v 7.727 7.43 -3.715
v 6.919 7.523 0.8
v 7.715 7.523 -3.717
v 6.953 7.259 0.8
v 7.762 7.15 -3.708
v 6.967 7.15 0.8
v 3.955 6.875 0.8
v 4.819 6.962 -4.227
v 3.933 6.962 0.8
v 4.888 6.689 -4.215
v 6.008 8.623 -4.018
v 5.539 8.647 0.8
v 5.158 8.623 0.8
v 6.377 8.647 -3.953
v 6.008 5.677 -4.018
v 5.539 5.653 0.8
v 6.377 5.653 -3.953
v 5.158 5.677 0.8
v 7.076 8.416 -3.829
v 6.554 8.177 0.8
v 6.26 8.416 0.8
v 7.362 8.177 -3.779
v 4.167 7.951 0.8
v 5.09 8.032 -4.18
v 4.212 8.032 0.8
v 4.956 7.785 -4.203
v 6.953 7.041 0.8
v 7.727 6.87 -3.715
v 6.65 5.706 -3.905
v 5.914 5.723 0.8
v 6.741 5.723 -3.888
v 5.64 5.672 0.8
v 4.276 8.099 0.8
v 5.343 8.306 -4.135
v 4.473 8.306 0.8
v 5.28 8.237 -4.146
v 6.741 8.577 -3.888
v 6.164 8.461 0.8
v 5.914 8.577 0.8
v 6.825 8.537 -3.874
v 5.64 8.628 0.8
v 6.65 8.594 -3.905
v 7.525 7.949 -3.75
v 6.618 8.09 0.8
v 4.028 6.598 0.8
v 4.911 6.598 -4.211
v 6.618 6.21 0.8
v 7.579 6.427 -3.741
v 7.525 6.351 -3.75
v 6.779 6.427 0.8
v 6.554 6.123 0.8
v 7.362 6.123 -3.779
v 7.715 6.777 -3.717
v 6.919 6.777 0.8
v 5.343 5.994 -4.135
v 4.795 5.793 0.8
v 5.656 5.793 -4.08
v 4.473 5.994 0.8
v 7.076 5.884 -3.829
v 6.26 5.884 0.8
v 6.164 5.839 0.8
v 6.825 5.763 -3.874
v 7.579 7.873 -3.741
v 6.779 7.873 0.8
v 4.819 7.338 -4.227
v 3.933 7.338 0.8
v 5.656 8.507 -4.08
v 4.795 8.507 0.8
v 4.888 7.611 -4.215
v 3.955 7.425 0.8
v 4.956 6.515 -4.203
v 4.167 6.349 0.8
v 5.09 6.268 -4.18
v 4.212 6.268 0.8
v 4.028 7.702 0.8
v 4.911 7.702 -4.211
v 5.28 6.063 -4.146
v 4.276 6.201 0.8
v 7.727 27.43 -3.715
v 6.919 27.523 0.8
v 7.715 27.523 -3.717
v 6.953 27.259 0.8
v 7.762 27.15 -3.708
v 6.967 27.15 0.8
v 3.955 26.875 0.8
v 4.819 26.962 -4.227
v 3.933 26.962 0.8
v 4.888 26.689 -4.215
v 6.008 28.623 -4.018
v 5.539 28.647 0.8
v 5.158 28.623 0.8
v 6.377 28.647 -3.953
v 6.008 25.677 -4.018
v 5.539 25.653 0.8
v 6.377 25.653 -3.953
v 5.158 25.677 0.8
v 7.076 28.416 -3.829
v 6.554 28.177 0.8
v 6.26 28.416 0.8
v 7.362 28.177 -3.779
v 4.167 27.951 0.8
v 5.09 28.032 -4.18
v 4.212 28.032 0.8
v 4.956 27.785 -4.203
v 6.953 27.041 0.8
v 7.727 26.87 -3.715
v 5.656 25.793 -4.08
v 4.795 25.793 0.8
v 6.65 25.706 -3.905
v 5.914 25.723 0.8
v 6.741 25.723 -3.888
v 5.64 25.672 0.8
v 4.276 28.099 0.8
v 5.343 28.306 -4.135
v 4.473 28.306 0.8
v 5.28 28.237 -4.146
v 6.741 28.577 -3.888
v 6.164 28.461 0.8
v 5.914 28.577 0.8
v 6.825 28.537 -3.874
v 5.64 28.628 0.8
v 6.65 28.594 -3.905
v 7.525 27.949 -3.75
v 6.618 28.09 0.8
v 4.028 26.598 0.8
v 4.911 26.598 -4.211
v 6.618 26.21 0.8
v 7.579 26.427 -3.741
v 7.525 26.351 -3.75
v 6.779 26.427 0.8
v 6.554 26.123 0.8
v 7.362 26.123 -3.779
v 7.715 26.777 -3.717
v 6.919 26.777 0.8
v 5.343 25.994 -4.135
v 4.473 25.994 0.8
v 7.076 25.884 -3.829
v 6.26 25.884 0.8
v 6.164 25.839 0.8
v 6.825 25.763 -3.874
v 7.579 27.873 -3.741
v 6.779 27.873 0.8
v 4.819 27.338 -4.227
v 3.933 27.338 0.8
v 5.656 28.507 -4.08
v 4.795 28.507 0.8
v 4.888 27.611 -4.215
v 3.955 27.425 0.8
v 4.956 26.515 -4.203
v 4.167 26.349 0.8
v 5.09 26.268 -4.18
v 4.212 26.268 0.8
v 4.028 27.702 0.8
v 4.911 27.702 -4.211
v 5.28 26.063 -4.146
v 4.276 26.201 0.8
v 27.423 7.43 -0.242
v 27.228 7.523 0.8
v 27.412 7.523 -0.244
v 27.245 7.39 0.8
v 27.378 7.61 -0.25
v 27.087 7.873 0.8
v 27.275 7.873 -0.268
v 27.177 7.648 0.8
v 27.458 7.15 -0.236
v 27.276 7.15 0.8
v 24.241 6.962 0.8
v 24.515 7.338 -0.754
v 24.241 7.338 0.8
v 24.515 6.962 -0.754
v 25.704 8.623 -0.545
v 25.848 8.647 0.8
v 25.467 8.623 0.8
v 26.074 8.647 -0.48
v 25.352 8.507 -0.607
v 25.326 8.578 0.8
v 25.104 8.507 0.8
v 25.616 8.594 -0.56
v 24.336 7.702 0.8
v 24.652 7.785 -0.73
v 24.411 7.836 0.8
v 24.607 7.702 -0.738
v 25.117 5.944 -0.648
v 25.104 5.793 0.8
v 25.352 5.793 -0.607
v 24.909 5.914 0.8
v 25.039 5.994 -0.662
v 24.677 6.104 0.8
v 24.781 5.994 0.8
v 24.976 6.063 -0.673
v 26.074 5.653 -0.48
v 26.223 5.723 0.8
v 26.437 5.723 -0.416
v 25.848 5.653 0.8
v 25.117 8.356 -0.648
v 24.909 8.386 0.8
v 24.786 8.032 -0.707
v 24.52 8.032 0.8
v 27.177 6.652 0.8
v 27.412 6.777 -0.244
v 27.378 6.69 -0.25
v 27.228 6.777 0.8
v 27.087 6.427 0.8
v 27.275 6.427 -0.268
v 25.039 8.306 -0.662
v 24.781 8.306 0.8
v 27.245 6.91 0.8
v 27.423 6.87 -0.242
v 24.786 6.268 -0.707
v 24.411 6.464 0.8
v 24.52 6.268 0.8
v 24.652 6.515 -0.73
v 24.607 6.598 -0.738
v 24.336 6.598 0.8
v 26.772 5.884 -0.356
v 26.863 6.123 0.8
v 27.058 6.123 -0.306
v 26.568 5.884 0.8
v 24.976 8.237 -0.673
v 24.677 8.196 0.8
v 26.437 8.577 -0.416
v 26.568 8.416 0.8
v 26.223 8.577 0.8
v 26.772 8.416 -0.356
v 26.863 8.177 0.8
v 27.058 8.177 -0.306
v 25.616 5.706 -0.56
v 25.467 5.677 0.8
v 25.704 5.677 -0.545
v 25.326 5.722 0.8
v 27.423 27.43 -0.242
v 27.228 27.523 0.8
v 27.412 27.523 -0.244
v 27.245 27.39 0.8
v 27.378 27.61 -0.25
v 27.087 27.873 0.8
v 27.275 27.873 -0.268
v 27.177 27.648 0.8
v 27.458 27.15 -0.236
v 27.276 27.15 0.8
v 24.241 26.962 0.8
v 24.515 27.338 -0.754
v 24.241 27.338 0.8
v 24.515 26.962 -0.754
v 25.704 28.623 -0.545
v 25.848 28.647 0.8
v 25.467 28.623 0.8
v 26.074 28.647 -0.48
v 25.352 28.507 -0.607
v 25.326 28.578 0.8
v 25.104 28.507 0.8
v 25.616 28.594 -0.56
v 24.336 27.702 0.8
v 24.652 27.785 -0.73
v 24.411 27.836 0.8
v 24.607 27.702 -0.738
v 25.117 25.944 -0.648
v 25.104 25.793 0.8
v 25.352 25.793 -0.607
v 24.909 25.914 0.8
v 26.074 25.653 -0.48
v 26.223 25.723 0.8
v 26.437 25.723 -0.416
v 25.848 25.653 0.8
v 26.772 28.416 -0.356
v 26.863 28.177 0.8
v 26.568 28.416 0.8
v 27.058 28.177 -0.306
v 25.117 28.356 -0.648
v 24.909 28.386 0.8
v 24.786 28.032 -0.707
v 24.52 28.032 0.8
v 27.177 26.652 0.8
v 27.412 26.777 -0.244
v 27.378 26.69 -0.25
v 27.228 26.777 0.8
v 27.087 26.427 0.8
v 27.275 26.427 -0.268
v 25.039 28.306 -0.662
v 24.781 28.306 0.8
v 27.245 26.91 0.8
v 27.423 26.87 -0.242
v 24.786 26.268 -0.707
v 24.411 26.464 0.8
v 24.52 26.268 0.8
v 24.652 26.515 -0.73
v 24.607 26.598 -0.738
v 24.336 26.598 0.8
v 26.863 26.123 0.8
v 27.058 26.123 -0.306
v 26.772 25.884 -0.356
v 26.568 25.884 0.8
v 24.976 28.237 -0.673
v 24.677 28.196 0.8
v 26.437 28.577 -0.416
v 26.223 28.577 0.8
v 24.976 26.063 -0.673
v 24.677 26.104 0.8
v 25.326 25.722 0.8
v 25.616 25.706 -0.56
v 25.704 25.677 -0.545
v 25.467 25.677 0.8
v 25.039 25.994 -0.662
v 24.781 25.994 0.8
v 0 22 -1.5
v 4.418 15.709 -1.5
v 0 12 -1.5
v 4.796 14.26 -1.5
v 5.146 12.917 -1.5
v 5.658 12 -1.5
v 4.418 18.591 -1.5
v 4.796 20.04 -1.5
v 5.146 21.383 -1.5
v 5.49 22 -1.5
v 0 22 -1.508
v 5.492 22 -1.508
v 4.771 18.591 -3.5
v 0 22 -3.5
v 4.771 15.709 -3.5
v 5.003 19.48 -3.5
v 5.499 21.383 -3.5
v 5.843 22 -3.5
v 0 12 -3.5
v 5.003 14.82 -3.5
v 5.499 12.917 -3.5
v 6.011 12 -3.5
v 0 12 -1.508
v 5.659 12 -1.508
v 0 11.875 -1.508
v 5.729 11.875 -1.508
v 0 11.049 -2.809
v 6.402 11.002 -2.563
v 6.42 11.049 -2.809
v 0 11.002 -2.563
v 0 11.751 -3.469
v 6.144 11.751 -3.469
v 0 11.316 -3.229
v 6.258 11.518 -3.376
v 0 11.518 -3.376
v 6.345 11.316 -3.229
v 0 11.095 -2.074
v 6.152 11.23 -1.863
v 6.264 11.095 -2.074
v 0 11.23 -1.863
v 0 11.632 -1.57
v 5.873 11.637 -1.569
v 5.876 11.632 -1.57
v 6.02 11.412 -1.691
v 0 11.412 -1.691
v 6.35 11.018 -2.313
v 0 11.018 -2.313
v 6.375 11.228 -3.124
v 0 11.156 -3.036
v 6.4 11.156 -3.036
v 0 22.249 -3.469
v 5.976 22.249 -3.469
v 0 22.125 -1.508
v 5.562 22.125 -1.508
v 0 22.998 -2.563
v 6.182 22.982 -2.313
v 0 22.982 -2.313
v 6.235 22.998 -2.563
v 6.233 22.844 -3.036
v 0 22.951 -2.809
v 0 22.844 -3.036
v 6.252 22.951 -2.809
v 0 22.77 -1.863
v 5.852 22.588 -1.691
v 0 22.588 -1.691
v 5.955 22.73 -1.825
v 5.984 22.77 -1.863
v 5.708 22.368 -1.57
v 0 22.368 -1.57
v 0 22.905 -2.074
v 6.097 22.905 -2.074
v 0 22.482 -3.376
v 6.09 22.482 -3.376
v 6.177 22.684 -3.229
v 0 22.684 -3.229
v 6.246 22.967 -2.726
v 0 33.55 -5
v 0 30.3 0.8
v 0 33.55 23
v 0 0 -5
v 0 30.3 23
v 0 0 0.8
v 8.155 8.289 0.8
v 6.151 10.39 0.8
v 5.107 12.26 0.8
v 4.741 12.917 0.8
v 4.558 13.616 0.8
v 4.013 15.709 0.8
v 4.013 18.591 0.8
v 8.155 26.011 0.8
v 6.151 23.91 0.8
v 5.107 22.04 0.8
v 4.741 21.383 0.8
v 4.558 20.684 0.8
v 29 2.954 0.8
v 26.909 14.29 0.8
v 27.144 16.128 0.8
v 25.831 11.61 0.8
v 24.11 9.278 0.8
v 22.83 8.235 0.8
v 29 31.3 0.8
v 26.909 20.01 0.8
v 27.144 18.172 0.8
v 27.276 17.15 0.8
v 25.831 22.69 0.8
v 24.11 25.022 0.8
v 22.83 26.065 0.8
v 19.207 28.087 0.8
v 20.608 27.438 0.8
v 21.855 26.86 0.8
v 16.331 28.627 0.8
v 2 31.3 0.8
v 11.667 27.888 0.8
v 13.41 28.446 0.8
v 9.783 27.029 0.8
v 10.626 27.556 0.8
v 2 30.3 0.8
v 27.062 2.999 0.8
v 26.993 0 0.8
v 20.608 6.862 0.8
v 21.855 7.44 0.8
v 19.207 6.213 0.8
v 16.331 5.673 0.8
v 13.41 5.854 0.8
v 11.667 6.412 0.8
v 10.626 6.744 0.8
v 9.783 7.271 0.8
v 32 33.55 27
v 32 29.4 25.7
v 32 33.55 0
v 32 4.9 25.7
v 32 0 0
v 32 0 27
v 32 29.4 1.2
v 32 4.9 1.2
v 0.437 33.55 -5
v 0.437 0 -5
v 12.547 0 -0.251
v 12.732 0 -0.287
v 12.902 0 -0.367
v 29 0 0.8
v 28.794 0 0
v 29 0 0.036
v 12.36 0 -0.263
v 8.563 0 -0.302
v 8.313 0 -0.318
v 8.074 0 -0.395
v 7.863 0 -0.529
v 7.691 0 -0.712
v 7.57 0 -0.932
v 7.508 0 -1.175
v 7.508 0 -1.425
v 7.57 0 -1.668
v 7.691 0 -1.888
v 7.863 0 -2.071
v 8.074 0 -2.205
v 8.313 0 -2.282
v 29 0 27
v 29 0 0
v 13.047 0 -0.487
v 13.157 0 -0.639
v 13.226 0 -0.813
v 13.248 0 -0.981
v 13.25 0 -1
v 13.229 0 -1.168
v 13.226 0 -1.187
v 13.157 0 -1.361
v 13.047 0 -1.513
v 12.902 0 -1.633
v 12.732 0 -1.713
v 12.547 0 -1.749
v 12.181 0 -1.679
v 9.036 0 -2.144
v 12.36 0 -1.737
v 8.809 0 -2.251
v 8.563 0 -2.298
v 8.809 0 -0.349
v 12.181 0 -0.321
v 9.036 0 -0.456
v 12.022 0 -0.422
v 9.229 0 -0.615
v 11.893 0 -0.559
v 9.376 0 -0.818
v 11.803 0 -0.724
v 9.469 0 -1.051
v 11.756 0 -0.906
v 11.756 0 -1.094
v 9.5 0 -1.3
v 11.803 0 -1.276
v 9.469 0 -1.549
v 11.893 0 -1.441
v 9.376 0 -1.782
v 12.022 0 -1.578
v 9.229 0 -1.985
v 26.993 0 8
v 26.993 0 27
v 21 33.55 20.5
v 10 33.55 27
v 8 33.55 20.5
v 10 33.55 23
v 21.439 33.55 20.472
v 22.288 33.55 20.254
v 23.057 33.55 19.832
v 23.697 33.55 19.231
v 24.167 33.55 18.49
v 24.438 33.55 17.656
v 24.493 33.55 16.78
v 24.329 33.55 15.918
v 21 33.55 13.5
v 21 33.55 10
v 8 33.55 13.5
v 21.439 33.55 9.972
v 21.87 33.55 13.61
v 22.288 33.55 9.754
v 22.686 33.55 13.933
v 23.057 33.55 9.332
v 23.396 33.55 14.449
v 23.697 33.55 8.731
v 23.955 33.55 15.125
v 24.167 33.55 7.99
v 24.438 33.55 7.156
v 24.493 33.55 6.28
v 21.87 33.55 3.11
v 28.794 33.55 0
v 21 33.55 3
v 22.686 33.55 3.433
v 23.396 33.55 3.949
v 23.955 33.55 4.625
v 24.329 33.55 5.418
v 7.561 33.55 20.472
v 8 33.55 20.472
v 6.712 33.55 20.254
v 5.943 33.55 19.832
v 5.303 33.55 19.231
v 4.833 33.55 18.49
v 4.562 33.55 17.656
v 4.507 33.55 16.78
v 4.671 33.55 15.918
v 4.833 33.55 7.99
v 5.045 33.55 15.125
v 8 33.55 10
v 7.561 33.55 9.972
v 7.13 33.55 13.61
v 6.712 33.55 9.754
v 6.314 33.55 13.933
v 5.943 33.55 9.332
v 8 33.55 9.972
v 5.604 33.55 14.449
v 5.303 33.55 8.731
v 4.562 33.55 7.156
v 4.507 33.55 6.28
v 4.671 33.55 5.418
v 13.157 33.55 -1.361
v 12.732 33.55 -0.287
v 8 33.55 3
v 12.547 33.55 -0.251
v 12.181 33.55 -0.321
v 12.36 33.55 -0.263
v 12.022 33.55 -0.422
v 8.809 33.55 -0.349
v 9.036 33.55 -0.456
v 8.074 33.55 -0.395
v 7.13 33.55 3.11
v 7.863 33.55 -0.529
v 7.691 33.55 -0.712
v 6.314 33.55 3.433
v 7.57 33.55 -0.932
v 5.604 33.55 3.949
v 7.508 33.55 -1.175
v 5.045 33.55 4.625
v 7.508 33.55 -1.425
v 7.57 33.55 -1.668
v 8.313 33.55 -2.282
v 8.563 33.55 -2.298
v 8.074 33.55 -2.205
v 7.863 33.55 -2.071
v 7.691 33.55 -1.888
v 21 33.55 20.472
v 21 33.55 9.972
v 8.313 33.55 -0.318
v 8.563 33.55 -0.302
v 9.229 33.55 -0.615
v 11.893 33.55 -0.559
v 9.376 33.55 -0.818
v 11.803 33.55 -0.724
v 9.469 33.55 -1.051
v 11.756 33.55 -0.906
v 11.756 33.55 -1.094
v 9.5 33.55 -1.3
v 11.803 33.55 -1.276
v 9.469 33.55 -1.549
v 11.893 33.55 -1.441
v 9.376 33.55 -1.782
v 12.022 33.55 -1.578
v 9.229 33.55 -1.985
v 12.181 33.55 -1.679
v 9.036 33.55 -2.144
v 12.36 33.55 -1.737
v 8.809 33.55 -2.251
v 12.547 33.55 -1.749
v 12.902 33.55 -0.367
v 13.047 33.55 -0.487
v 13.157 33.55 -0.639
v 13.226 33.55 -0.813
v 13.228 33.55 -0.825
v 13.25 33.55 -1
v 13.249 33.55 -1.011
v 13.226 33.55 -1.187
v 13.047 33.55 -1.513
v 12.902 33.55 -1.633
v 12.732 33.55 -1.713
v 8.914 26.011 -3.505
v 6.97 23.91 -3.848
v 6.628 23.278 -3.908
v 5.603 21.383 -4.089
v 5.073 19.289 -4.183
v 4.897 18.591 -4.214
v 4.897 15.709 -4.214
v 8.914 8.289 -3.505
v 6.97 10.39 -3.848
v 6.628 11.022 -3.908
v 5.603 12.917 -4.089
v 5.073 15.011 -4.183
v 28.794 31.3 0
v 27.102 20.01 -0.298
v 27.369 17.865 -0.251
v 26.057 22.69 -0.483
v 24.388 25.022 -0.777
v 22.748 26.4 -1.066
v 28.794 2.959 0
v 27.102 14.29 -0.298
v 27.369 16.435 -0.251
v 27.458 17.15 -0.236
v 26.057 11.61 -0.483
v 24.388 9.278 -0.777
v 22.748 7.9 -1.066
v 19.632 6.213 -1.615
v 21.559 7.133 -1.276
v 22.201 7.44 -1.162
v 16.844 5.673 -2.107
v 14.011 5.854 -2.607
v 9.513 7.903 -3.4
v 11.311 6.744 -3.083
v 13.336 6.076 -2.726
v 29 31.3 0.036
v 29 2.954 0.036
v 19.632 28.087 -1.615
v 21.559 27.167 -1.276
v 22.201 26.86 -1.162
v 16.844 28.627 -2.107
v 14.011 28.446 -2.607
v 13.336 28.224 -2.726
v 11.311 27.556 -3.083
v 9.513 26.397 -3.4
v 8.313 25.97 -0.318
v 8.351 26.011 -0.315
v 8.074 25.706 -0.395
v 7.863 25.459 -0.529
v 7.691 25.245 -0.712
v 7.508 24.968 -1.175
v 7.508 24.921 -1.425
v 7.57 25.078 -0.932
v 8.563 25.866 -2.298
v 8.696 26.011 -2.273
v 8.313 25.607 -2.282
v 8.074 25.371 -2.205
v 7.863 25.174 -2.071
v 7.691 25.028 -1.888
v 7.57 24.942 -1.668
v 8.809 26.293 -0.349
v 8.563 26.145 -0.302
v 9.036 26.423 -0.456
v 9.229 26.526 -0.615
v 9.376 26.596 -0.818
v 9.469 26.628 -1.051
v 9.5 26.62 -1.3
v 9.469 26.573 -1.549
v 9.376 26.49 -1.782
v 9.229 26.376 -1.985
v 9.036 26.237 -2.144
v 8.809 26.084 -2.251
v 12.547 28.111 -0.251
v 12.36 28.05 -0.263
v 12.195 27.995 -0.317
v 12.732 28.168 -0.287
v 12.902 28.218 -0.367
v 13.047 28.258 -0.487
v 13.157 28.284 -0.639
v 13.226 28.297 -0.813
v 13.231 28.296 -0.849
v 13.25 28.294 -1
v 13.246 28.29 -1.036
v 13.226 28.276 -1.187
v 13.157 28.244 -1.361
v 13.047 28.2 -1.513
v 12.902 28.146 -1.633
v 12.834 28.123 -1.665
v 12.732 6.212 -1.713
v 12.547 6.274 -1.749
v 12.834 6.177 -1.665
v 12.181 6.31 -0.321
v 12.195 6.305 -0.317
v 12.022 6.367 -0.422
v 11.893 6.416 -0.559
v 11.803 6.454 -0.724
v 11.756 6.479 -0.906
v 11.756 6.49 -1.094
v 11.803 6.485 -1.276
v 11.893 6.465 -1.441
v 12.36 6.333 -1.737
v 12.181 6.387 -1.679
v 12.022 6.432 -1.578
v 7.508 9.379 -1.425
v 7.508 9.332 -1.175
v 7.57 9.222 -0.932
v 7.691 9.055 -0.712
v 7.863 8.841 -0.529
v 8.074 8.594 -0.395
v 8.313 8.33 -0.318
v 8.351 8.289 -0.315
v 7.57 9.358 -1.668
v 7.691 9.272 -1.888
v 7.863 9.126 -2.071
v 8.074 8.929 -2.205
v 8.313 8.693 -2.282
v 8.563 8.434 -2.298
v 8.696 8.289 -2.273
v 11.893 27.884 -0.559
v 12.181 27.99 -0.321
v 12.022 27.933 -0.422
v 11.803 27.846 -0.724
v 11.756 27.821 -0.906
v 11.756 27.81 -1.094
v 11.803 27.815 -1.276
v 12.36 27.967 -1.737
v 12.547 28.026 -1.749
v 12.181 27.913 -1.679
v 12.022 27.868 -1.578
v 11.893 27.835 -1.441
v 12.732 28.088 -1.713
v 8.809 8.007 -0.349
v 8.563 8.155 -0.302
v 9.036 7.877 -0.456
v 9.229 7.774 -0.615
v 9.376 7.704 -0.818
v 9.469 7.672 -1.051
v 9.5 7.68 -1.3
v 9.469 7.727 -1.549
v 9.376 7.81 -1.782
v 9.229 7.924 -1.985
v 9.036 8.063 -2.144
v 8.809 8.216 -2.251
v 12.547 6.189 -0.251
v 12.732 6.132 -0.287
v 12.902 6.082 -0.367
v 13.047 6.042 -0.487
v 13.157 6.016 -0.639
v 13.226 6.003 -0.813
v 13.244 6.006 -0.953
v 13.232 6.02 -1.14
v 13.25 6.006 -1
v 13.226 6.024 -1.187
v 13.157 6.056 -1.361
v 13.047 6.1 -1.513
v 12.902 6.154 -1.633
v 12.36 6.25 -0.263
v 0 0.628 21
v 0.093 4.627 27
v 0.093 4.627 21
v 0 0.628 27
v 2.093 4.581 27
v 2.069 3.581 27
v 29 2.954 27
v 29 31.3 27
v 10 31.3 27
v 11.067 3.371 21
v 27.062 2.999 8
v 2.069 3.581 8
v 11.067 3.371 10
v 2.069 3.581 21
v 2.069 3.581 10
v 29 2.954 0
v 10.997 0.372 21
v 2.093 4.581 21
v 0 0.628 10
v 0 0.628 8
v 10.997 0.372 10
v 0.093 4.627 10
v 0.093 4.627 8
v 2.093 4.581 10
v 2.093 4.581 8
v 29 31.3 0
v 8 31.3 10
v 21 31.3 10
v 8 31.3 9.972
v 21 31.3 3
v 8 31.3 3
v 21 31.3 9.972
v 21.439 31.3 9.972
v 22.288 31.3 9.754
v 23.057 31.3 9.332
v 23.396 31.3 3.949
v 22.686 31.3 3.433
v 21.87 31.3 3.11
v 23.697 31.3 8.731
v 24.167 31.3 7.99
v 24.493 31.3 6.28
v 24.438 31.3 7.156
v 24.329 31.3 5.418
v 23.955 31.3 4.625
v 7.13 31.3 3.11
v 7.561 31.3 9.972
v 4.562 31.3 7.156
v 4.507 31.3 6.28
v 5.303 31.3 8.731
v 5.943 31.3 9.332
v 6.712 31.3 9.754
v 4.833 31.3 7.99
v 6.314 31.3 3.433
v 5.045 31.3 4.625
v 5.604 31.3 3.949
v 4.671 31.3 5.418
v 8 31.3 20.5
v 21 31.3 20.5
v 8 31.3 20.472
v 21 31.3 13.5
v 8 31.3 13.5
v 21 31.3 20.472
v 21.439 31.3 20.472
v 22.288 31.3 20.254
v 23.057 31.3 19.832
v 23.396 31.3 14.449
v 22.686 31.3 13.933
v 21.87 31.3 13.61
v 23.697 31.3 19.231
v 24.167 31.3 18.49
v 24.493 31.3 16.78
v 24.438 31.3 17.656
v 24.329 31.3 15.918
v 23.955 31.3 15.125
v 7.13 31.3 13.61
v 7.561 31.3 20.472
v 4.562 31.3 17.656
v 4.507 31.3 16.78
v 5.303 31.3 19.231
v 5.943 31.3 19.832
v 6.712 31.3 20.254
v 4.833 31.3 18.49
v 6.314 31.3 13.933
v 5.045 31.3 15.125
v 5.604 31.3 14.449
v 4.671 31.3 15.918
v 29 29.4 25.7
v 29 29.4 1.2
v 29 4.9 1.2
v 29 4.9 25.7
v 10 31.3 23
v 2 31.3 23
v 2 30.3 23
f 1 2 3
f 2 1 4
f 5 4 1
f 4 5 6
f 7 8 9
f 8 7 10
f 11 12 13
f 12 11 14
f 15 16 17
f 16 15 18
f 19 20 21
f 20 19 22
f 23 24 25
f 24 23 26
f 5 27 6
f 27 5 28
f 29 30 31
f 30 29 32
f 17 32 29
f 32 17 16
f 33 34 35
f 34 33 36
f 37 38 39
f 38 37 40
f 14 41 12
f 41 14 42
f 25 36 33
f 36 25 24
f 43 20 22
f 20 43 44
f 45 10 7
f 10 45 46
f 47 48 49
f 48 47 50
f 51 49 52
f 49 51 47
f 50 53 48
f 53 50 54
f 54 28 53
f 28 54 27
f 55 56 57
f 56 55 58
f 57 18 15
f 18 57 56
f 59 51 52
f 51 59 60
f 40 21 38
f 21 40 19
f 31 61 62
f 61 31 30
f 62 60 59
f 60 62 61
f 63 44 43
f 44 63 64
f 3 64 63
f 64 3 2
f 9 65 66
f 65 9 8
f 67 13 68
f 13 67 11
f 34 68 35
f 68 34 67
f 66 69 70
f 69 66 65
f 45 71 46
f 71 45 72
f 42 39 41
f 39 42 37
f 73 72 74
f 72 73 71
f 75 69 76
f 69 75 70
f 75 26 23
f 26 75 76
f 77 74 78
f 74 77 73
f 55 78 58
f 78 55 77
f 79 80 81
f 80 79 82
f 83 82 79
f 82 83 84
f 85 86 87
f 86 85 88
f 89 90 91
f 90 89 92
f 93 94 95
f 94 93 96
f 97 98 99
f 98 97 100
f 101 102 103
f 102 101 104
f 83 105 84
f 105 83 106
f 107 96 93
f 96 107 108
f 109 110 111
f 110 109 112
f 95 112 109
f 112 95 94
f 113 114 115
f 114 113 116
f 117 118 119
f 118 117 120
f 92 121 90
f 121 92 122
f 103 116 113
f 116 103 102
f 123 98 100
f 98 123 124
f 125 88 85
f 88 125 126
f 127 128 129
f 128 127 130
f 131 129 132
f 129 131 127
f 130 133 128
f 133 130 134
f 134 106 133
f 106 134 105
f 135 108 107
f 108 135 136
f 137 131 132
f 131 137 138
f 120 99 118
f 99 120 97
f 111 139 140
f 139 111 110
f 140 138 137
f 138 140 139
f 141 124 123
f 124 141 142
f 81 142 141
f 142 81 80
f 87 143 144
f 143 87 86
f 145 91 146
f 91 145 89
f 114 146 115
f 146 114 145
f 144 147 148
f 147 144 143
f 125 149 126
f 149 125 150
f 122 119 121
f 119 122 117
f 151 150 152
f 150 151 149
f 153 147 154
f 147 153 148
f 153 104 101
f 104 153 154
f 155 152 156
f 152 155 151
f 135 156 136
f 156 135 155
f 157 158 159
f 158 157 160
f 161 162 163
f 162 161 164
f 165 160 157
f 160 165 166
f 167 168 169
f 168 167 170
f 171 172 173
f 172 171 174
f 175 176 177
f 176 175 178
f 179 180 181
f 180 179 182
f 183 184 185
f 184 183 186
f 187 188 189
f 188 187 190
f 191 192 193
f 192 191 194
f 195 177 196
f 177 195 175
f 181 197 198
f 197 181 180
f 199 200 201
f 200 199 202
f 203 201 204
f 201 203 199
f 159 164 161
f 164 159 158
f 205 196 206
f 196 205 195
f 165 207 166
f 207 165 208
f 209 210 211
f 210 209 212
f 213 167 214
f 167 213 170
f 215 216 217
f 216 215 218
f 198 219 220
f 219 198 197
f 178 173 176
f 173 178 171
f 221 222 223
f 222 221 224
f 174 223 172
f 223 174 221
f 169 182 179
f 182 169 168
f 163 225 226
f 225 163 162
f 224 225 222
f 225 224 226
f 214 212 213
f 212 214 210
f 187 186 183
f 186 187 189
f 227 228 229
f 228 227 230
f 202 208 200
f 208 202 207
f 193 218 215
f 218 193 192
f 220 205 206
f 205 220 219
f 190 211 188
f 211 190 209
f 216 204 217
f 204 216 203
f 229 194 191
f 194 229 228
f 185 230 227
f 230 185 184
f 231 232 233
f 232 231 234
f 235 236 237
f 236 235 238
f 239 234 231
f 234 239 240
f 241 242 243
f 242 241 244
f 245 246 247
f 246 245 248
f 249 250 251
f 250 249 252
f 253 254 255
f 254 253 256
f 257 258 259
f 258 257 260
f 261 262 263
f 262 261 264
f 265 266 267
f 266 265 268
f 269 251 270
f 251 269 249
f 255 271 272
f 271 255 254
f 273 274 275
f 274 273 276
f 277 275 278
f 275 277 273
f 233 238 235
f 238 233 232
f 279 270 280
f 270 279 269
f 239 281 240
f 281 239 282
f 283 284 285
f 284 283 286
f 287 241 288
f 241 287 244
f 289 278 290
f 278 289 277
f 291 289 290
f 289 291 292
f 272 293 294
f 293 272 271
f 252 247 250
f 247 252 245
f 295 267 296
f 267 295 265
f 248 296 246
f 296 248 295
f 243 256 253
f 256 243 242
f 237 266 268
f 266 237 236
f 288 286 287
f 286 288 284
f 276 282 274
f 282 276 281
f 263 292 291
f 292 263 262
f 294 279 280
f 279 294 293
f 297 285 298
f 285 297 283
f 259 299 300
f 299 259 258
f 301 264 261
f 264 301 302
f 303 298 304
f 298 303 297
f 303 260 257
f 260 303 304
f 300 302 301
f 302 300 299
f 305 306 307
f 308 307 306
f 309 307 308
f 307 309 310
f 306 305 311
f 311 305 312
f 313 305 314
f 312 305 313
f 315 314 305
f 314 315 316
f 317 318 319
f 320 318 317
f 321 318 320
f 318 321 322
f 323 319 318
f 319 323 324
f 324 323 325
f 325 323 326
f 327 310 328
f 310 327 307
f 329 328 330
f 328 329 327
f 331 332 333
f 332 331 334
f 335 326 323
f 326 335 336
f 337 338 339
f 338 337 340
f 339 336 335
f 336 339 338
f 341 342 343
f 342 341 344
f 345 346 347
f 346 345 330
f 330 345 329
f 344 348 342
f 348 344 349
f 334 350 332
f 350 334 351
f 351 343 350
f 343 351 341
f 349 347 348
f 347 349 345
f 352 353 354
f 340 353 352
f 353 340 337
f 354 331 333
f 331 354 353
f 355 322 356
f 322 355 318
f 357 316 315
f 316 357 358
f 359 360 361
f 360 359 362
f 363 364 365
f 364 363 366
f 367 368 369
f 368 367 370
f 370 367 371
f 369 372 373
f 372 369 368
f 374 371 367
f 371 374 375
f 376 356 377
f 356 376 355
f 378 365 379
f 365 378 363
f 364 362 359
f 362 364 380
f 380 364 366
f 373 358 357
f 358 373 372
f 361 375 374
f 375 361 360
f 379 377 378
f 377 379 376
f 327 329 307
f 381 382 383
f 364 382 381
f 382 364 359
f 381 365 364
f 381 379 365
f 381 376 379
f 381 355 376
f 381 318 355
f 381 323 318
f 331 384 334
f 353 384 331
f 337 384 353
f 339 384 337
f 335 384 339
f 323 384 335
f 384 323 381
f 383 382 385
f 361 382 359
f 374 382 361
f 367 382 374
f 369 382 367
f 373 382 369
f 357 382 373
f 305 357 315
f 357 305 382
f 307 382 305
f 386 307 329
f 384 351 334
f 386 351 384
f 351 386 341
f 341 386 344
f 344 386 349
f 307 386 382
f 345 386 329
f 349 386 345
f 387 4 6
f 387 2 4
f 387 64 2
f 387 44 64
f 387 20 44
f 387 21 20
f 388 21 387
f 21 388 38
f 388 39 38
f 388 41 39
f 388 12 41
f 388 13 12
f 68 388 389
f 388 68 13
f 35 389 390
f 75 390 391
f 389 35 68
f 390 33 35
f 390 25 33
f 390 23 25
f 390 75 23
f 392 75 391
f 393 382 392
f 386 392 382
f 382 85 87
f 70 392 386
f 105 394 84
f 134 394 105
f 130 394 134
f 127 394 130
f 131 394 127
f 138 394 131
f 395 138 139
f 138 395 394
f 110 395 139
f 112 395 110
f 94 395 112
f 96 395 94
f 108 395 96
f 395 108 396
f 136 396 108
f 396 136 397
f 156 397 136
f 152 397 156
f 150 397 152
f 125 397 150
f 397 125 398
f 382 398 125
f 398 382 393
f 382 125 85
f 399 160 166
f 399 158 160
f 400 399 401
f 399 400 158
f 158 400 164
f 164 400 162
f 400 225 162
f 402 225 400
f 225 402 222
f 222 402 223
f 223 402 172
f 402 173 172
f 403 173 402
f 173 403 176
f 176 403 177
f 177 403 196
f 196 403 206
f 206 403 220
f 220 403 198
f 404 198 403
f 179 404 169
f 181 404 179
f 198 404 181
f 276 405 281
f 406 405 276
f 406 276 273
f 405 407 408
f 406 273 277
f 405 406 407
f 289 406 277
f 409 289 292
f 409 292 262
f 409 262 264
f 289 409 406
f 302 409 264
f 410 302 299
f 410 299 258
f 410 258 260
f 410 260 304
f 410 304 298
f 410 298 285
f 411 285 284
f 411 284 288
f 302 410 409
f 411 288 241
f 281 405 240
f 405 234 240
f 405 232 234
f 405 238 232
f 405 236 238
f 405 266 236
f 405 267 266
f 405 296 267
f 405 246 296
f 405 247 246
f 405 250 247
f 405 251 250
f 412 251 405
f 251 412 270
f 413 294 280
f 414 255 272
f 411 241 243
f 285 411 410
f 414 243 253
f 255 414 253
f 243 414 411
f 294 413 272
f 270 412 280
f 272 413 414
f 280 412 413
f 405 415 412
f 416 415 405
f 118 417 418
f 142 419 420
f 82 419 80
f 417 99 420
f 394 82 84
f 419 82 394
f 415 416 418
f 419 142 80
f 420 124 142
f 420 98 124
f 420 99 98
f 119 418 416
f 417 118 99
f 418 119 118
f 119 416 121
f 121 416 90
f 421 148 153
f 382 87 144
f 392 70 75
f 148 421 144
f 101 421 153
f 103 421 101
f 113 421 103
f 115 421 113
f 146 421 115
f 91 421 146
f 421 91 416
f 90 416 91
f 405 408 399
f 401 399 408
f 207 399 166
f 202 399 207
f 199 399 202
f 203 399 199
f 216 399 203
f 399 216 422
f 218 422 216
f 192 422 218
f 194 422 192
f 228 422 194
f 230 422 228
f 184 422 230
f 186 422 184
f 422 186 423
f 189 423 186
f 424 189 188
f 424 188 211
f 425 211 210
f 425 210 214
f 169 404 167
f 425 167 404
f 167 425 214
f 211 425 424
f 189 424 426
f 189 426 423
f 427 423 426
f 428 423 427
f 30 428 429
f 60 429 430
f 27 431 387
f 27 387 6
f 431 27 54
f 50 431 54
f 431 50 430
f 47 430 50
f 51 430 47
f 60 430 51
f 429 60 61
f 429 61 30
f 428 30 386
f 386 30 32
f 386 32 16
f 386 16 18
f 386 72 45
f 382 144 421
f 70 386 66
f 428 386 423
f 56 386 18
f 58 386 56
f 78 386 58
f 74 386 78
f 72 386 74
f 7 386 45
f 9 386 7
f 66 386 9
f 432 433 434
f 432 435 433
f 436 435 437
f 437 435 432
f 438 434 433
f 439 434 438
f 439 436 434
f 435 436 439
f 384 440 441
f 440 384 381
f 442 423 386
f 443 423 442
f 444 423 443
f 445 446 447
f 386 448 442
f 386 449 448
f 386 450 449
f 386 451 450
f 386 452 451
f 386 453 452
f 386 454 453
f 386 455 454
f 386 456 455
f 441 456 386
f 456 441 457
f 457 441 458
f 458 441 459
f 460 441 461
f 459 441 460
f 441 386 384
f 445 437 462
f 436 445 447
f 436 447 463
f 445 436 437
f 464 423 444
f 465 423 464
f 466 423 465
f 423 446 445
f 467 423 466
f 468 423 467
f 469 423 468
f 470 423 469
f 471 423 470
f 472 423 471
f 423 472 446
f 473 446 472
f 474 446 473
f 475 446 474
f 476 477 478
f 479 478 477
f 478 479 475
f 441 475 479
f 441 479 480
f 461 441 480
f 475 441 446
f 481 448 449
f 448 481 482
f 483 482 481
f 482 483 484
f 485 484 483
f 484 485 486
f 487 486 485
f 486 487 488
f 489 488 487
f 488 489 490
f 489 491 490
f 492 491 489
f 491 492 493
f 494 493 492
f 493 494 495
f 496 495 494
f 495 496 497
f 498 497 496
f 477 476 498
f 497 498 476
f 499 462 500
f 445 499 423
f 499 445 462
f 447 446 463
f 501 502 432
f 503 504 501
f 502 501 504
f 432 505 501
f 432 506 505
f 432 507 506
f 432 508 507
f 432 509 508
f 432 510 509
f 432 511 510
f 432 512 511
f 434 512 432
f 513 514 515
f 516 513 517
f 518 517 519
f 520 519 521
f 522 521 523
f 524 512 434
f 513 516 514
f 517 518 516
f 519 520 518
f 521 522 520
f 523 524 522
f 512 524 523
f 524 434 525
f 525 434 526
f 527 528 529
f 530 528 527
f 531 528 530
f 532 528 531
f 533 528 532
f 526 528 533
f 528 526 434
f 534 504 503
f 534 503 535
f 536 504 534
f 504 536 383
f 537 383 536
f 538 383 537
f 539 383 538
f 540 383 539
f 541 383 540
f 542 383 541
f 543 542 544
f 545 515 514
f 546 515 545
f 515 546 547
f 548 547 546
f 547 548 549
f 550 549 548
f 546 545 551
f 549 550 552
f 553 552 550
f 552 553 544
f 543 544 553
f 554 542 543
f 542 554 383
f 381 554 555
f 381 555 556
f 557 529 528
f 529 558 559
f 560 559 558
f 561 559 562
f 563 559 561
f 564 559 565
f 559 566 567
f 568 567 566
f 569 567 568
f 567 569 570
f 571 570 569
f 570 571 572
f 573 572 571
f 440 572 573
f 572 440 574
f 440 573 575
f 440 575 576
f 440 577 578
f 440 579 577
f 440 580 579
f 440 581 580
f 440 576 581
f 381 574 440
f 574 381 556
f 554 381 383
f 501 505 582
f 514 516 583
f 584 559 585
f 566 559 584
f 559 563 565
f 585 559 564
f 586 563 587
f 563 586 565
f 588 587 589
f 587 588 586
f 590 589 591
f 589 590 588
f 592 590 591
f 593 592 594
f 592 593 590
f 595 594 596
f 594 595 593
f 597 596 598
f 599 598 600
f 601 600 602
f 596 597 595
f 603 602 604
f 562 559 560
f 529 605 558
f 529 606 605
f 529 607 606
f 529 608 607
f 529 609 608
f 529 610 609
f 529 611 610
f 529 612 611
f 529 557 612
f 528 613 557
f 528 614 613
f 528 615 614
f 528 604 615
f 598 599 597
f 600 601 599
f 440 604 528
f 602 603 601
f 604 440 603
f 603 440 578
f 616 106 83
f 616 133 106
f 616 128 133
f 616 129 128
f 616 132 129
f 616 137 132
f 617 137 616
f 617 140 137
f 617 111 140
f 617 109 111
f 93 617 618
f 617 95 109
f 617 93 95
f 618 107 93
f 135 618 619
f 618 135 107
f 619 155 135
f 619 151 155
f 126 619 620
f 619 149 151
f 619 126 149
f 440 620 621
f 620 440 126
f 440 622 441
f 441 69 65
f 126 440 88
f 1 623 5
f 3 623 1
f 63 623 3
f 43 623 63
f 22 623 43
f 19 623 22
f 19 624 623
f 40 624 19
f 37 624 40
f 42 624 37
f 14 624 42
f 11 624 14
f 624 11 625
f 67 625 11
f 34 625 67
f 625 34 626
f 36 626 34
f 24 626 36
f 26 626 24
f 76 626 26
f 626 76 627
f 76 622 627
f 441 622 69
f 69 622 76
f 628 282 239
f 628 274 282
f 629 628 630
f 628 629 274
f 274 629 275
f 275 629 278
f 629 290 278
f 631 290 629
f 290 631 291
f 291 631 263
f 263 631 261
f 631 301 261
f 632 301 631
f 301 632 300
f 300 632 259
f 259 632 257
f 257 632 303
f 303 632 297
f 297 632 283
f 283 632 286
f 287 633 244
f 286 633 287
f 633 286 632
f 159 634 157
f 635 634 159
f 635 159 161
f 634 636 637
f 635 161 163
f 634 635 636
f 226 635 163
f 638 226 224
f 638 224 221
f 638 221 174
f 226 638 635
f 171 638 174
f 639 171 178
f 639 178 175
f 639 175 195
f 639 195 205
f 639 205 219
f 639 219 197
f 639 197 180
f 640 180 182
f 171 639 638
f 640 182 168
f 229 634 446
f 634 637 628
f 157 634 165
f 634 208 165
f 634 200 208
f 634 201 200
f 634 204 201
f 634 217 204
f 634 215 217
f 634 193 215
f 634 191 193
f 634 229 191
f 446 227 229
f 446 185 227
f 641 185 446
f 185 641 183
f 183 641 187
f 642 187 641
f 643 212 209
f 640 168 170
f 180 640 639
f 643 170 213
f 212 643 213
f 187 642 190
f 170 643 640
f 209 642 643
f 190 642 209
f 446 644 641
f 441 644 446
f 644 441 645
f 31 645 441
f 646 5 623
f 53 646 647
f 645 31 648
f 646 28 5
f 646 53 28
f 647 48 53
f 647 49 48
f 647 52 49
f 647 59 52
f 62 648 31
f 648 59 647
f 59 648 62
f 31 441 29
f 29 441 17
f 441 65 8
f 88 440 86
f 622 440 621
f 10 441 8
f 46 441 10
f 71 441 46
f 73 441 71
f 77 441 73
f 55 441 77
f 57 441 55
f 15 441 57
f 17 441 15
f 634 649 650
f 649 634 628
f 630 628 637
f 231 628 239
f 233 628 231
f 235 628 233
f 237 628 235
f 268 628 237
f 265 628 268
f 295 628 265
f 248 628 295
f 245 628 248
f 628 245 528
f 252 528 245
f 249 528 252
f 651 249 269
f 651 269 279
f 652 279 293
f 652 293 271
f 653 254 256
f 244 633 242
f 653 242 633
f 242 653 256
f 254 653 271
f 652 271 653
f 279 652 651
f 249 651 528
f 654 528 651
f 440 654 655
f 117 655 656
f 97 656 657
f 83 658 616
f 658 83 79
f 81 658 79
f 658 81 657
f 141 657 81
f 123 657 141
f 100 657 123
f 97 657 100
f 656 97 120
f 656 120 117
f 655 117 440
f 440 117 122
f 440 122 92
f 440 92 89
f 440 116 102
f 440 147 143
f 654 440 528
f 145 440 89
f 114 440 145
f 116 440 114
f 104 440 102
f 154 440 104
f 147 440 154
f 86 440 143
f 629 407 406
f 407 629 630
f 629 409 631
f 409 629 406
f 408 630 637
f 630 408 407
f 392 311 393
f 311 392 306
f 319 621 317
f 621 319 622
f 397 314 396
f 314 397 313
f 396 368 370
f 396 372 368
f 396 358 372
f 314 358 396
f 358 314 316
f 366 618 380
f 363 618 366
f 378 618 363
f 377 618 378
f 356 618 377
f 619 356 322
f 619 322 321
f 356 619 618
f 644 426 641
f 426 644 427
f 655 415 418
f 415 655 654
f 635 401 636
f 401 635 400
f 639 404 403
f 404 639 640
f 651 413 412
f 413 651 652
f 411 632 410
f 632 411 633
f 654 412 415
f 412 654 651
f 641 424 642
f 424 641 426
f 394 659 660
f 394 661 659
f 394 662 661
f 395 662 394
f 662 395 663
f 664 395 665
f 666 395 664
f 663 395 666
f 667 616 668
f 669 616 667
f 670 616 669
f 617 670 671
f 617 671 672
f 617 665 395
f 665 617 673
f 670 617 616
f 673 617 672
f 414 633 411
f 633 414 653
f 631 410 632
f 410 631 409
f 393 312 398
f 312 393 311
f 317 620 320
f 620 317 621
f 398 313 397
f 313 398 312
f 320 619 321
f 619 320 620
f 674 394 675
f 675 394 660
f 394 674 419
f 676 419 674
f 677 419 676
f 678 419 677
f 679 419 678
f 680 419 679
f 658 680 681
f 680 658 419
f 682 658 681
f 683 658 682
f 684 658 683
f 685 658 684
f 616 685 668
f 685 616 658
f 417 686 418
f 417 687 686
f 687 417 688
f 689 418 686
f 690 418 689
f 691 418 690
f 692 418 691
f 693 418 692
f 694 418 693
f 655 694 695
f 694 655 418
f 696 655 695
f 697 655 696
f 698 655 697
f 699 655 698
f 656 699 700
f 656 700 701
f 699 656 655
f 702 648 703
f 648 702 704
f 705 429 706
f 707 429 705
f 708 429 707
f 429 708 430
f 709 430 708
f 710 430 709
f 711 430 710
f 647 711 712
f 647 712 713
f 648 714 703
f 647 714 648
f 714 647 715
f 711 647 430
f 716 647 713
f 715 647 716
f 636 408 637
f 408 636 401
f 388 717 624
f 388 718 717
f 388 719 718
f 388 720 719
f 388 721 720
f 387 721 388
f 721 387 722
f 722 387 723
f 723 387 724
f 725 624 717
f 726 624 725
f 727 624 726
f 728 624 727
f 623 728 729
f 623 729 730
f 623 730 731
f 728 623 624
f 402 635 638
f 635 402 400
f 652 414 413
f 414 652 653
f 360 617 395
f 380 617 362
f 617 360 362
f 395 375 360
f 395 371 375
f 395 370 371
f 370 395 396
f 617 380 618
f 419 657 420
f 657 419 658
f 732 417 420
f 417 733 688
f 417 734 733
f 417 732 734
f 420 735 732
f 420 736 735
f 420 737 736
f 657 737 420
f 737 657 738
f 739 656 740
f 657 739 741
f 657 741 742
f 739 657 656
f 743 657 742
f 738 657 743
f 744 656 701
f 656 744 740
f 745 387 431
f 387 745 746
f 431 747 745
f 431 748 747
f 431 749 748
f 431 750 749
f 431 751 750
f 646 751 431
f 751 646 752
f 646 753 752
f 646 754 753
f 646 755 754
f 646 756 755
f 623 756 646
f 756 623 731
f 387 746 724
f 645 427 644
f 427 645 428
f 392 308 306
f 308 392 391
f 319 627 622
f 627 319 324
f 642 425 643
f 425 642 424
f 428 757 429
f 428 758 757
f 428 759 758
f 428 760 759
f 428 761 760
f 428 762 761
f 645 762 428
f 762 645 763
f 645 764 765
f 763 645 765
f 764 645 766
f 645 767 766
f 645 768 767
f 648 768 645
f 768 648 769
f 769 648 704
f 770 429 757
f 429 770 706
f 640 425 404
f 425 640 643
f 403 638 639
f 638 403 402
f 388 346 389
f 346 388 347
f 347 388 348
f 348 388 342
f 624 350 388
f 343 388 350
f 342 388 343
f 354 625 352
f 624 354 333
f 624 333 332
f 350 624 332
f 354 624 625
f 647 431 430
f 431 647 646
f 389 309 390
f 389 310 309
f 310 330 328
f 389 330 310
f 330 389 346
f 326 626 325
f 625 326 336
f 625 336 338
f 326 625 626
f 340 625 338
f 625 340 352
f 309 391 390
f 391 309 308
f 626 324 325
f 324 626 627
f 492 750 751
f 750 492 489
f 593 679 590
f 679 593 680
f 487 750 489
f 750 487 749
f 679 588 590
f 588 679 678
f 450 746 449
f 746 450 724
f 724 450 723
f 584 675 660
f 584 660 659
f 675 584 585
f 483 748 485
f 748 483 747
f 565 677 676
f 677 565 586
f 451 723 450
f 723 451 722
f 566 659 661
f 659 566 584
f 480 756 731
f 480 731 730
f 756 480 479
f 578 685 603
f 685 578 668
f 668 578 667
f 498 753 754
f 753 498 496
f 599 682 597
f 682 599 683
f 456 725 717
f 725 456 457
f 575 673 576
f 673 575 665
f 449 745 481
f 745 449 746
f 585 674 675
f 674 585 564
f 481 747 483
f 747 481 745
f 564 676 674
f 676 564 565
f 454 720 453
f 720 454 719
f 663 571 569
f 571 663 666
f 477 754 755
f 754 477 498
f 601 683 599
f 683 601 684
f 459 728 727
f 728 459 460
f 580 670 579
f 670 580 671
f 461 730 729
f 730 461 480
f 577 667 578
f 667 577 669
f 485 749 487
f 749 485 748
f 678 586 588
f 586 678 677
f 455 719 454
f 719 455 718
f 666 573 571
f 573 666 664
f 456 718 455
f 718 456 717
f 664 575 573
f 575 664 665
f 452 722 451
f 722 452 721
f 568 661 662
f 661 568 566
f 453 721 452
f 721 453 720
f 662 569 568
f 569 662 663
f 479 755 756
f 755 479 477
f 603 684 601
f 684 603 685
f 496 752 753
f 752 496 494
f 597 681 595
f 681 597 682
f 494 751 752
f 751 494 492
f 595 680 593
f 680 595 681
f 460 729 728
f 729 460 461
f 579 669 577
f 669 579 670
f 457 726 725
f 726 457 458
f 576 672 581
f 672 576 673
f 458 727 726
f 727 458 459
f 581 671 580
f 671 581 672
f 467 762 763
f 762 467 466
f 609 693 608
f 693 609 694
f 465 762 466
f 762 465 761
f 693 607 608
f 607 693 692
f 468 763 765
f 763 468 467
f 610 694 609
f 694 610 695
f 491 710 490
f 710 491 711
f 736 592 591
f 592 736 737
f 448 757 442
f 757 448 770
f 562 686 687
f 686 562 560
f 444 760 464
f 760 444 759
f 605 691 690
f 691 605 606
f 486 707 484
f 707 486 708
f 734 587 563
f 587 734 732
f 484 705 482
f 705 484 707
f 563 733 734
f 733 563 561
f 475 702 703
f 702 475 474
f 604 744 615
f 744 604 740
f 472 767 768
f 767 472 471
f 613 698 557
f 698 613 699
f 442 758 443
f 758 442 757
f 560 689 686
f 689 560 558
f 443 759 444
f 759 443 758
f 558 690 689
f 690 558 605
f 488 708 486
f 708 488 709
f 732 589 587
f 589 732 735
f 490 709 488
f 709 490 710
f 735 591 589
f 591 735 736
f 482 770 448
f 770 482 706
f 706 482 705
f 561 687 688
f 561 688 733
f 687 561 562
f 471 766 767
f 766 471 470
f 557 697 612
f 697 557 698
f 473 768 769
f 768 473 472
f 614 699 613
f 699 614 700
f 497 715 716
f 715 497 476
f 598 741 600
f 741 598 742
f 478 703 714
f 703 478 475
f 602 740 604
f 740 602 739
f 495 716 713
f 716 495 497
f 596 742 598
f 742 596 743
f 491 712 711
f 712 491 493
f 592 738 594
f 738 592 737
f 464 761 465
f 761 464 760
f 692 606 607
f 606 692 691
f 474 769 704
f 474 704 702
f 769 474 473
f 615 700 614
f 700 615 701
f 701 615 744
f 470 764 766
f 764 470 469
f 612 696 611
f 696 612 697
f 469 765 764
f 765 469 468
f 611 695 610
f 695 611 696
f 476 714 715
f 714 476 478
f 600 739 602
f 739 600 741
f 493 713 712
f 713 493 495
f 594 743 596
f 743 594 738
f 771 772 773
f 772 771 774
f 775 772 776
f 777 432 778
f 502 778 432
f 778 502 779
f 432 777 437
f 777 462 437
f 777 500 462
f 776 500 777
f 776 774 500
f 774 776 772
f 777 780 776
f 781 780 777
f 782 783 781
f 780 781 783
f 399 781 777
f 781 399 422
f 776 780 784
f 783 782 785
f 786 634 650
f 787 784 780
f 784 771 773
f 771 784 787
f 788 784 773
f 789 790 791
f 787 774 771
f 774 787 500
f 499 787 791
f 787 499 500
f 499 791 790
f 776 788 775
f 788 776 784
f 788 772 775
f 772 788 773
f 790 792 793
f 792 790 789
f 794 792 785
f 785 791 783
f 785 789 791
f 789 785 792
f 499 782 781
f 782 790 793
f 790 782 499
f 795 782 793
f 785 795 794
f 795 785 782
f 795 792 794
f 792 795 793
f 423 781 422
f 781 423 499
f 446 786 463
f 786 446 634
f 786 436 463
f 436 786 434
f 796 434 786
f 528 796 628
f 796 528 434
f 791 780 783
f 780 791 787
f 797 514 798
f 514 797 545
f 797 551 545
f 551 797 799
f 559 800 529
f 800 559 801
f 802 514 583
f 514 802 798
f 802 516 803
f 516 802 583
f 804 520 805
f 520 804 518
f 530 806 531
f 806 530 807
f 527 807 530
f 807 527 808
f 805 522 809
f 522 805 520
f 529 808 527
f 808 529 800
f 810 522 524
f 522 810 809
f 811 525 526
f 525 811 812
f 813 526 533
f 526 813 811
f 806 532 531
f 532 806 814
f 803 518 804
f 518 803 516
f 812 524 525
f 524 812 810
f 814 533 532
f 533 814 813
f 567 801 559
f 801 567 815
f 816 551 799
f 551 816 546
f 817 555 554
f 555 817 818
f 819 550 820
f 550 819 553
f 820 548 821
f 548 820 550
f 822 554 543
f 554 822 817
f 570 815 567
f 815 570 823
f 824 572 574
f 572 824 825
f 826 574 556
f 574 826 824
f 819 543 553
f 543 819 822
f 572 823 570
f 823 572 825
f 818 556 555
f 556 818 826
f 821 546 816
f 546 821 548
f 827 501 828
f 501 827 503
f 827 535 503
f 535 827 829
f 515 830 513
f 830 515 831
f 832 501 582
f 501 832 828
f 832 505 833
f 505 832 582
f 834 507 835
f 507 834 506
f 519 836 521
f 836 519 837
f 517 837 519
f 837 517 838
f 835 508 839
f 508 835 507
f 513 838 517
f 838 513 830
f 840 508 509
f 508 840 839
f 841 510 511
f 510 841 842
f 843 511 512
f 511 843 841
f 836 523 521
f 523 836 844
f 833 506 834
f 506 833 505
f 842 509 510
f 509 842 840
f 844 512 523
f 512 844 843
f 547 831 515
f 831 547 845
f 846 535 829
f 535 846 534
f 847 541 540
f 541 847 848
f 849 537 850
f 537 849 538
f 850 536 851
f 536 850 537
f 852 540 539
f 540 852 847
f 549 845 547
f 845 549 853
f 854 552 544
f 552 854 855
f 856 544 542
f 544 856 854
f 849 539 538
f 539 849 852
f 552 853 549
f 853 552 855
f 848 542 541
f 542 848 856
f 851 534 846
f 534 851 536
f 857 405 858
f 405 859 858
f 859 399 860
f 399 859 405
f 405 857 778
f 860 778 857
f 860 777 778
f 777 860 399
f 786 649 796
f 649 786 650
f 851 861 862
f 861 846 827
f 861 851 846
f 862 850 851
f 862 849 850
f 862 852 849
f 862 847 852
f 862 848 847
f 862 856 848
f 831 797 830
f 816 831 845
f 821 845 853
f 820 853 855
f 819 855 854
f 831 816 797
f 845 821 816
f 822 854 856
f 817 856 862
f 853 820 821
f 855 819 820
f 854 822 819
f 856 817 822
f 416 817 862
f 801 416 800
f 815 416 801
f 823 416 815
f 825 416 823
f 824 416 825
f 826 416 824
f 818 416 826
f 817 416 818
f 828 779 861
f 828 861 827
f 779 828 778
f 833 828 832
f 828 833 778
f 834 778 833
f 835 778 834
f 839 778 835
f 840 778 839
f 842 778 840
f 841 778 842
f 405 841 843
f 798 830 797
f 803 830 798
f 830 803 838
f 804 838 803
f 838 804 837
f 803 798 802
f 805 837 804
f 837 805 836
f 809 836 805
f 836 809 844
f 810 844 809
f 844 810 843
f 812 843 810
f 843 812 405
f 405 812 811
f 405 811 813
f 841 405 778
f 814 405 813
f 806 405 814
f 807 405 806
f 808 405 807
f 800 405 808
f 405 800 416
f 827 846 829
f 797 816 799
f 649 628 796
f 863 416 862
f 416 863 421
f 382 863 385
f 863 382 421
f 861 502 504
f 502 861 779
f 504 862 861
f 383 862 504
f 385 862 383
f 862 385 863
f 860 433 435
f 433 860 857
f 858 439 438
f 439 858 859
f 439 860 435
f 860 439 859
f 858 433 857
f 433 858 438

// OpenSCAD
/*
 * Based on "Y-Axis Bracket" by "daveth26":
 * http://www.thingiverse.com/thing:1104535
 *
 * Recreated and modified by:
 * Thomas Buck <xythobuz@xythobuz.de> in March 2016
 *
 * Licensed under the Creative Commons - Attribution license.
 *
 * This part has been modified to use a 25mm fan instead of 
 * a 30mm fan. This can be set in the parameters, but beware
 * of any problems, I have not tested any other sizes.
 *
 * The Fabrikator Mini V1.5 include a new bracket that prevents
 * the old design from sliding fully onto the stepper motor.
 */

// -----------------------------------------------------------

height = 27; // [14:26]

// default for 25mm fan: 23
fan_hole_diameter = 23; // [26]

// default for 25mm fan: 20
fan_screw_distance = 20; // [22]

// default for 25mm fan: 3
fan_screw_diameter = 3; // [1:5]

fan_hole_angled = "true"; // [true, false]

arm_inward_angle_left = 2; // [0:5]

// -----------------------------------------------------------

/* [Hidden] */

right_wall_size_modifier = 0.75; // [0:2]

bottom_arm_height = 2;
bottom_arm_gap = 8;

back_support_depth = 2;
mid_left_cutout = 9;

wall_size = 3;
fan_angle = 10;

nub_size = 1;
nub_depth = 2;

motor_width = 28.3;
motor_depth = 27;

cut_out_depth = 10;
cut_out_height = 4;

$fn = 25;

fan_screw_pos = fan_screw_distance / 2;
fan_screw_neg = -fan_screw_pos;

fabrikator_mini_v15_height = 20;
mid_left_cutout_height = 6;

base_height = 5;

arm_inward_angle_right = 0;

top_fan_extra_layer = 0.8;

heat_sink_cutout = 24.5;

// -----------------------------------------------------------

module ellipse(w, l, d) {
    cube([d, l - w, w]);
    
    translate([0, 0, w / 2])
        rotate([0, 90, 0])
        cylinder(d = w, h = d);
    
    translate([0, l - w, w / 2])
        rotate([0, 90, 0])
        cylinder(d = w, h = d);
}

module left_arm() {
    // bottom left arm
    translate([0, 0, bottom_arm_gap])
        cube([motor_depth + nub_depth, wall_size, bottom_arm_height]);

    // bottom left nub
    translate([0, 0, bottom_arm_gap])
        cube([nub_depth, wall_size + nub_size, bottom_arm_height]);

    if (height > fabrikator_mini_v15_height) {
        // top left arm
        translate([0, 0, fabrikator_mini_v15_height + 1])
            cube([motor_depth + nub_depth, wall_size, height - fabrikator_mini_v15_height - 1]);
    
        // top left nub
        translate([0, 0, fabrikator_mini_v15_height + 1])
            cube([nub_depth, wall_size + nub_size, height - fabrikator_mini_v15_height - 1]);
    }

    // left back support
    translate([motor_depth + nub_depth - back_support_depth, 0, 0])
        cube([back_support_depth, wall_size, height]);

    // mid left support
    translate([nub_depth + mid_left_cutout, 0, 10])
        cube([motor_depth - back_support_depth - mid_left_cutout, wall_size, height - fabrikator_mini_v15_height + mid_left_cutout_height]);
    
    if (arm_inward_angle_left != 0) {
        // connecting piece for angled arm
        translate([motor_depth + nub_depth - back_support_depth, 0, 0])
            cube([1.5 * back_support_depth, wall_size, height]);
    }
}

module right_arm() {
    difference() {
        union() {
            // right wall
            translate([0, motor_width + wall_size, 0])
                cube([motor_depth + nub_depth, wall_size - right_wall_size_modifier, height]);
            
            // right nub
            translate([0, motor_width + wall_size - nub_size, 0])
                cube([nub_depth, wall_size + nub_size - right_wall_size_modifier, height]);
        }
        
        translate([24 - wall_size, 28, 3])
            rotate([0, 0, 90])
            ellipse(7, 20, 8);
        
        if (height > 23) {
            translate([24 - wall_size, 28, 13.5])
                rotate([0, 0, 90])
                ellipse(7, 20, 8);
        }
        
        // cut off a small nub at the top to fit the Z-axis rod holder
        translate([0, motor_width + wall_size - nub_size, height - cut_out_height])
            cube([cut_out_depth, wall_size + nub_size, cut_out_height]);
    }
    
    
    
    if (arm_inward_angle_right != 0) {
        // connecting piece for angled arm
        translate([motor_depth + nub_depth - back_support_depth, motor_width + wall_size, 0])
            cube([1.5 * back_support_depth, wall_size, height]);
    }
}

// -----------------------------------------------------------

// stepper motor
%translate([nub_depth, wall_size, 0])
    cube([motor_depth, motor_width, height + 1]);

// heat sink
%translate([nub_depth + motor_depth, ((2 * wall_size) + motor_width - heat_sink_cutout) / 2, 1.5 * top_fan_extra_layer])
    cube([10, heat_sink_cutout, heat_sink_cutout]);

difference() {
    // left arm
    translate([0, 27 * sin(arm_inward_angle_left / 1.5), 0])
        rotate([0, 0, -(arm_inward_angle_left / 1.5)])
        left_arm();
    
    // cut off small ledge
    translate([0, -1, -base_height])
        cube([motor_depth + nub_depth + wall_size, 1, motor_width + base_height + wall_size]);
}

difference() {
    // right arm
    translate([35 * sin(arm_inward_angle_right / 1.5), -27 * sin(arm_inward_angle_right / 1.5), 0])
        rotate([0, 0, arm_inward_angle_right / 1.5])
        right_arm();

    if (arm_inward_angle_right != 0) {
        // cut off small ledge
        translate([0, motor_width + (2 * wall_size), -base_height])
            cube([motor_depth + nub_depth + wall_size, 1, motor_width + base_height + wall_size]);
    }
}

// back wall
difference() {
    translate([motor_depth + nub_depth, 0, 0])
        cube([wall_size, motor_width + (2 * wall_size) - right_wall_size_modifier, height]);
    
    translate([25, 8 + wall_size, 4])
        ellipse(7, 20, 8);
    
    if (height > 23) {
        translate([25, 8 + wall_size, 15])
            ellipse(7, 20, 8);
    }
    
    translate([nub_depth + motor_depth, ((2 * wall_size) + motor_width - heat_sink_cutout) / 2, 1.5 * top_fan_extra_layer])
        cube([wall_size, heat_sink_cutout, heat_sink_cutout]);
}

// bottom part
difference() {
    // base
    translate([0, 0, -base_height])
        cube([motor_depth + nub_depth + wall_size, motor_width + (2 * wall_size) - right_wall_size_modifier, base_height + top_fan_extra_layer]);
    
    // cut off angled bottom part
    rotate([0, -fan_angle, 0])
        translate([-base_height, -(base_height / 2), -(3 * base_height)])
        cube([motor_depth * 1.5, motor_width + (2 * wall_size) + base_height, (2 * base_height)]);
    
    // main fan hole
    if (fan_hole_angled == "true") {
        rotate([0, -fan_angle, 0])
            translate([nub_depth + (motor_depth / 2), wall_size + (motor_width / 2), -(base_height * 1.5)])
            cylinder(d = fan_hole_diameter, h = (2 * base_height));
    } else {
        translate([nub_depth + (motor_depth / 2), wall_size + (motor_width / 2), -(base_height * 1.5)])
        cylinder(d = fan_hole_diameter, h = (2 * base_height));
    }
    
    // fan screw holes
    for (i = [1 : 2]) {
        for (j = [1 : 2]) {
            rotate([0, -fan_angle, 0])
                translate([nub_depth + (motor_depth / 2), wall_size + (motor_width / 2), -(base_height * 1.5)])
                translate([(((i % 2) == 0) ? fan_screw_pos : fan_screw_neg),
                    (((j % 2) == 0) ? fan_screw_pos : fan_screw_neg), 0])
                cylinder(d = fan_screw_diameter, h = (2 * base_height));
        }
    }
    
    // big air hole
    translate([8.5, 36, -1.3])
        rotate([90, 0, 0])
        cylinder(d = 2, h = 40);
    
    // small air hole
    translate([12.5, 36, -1])
        rotate([90, 0, 0])
        cylinder(d = 1.5, h = 40);
    
    // elliptical air hole
    translate([-1, 9 + wall_size, -3.5])
        ellipse(2, 12, 8);
}
